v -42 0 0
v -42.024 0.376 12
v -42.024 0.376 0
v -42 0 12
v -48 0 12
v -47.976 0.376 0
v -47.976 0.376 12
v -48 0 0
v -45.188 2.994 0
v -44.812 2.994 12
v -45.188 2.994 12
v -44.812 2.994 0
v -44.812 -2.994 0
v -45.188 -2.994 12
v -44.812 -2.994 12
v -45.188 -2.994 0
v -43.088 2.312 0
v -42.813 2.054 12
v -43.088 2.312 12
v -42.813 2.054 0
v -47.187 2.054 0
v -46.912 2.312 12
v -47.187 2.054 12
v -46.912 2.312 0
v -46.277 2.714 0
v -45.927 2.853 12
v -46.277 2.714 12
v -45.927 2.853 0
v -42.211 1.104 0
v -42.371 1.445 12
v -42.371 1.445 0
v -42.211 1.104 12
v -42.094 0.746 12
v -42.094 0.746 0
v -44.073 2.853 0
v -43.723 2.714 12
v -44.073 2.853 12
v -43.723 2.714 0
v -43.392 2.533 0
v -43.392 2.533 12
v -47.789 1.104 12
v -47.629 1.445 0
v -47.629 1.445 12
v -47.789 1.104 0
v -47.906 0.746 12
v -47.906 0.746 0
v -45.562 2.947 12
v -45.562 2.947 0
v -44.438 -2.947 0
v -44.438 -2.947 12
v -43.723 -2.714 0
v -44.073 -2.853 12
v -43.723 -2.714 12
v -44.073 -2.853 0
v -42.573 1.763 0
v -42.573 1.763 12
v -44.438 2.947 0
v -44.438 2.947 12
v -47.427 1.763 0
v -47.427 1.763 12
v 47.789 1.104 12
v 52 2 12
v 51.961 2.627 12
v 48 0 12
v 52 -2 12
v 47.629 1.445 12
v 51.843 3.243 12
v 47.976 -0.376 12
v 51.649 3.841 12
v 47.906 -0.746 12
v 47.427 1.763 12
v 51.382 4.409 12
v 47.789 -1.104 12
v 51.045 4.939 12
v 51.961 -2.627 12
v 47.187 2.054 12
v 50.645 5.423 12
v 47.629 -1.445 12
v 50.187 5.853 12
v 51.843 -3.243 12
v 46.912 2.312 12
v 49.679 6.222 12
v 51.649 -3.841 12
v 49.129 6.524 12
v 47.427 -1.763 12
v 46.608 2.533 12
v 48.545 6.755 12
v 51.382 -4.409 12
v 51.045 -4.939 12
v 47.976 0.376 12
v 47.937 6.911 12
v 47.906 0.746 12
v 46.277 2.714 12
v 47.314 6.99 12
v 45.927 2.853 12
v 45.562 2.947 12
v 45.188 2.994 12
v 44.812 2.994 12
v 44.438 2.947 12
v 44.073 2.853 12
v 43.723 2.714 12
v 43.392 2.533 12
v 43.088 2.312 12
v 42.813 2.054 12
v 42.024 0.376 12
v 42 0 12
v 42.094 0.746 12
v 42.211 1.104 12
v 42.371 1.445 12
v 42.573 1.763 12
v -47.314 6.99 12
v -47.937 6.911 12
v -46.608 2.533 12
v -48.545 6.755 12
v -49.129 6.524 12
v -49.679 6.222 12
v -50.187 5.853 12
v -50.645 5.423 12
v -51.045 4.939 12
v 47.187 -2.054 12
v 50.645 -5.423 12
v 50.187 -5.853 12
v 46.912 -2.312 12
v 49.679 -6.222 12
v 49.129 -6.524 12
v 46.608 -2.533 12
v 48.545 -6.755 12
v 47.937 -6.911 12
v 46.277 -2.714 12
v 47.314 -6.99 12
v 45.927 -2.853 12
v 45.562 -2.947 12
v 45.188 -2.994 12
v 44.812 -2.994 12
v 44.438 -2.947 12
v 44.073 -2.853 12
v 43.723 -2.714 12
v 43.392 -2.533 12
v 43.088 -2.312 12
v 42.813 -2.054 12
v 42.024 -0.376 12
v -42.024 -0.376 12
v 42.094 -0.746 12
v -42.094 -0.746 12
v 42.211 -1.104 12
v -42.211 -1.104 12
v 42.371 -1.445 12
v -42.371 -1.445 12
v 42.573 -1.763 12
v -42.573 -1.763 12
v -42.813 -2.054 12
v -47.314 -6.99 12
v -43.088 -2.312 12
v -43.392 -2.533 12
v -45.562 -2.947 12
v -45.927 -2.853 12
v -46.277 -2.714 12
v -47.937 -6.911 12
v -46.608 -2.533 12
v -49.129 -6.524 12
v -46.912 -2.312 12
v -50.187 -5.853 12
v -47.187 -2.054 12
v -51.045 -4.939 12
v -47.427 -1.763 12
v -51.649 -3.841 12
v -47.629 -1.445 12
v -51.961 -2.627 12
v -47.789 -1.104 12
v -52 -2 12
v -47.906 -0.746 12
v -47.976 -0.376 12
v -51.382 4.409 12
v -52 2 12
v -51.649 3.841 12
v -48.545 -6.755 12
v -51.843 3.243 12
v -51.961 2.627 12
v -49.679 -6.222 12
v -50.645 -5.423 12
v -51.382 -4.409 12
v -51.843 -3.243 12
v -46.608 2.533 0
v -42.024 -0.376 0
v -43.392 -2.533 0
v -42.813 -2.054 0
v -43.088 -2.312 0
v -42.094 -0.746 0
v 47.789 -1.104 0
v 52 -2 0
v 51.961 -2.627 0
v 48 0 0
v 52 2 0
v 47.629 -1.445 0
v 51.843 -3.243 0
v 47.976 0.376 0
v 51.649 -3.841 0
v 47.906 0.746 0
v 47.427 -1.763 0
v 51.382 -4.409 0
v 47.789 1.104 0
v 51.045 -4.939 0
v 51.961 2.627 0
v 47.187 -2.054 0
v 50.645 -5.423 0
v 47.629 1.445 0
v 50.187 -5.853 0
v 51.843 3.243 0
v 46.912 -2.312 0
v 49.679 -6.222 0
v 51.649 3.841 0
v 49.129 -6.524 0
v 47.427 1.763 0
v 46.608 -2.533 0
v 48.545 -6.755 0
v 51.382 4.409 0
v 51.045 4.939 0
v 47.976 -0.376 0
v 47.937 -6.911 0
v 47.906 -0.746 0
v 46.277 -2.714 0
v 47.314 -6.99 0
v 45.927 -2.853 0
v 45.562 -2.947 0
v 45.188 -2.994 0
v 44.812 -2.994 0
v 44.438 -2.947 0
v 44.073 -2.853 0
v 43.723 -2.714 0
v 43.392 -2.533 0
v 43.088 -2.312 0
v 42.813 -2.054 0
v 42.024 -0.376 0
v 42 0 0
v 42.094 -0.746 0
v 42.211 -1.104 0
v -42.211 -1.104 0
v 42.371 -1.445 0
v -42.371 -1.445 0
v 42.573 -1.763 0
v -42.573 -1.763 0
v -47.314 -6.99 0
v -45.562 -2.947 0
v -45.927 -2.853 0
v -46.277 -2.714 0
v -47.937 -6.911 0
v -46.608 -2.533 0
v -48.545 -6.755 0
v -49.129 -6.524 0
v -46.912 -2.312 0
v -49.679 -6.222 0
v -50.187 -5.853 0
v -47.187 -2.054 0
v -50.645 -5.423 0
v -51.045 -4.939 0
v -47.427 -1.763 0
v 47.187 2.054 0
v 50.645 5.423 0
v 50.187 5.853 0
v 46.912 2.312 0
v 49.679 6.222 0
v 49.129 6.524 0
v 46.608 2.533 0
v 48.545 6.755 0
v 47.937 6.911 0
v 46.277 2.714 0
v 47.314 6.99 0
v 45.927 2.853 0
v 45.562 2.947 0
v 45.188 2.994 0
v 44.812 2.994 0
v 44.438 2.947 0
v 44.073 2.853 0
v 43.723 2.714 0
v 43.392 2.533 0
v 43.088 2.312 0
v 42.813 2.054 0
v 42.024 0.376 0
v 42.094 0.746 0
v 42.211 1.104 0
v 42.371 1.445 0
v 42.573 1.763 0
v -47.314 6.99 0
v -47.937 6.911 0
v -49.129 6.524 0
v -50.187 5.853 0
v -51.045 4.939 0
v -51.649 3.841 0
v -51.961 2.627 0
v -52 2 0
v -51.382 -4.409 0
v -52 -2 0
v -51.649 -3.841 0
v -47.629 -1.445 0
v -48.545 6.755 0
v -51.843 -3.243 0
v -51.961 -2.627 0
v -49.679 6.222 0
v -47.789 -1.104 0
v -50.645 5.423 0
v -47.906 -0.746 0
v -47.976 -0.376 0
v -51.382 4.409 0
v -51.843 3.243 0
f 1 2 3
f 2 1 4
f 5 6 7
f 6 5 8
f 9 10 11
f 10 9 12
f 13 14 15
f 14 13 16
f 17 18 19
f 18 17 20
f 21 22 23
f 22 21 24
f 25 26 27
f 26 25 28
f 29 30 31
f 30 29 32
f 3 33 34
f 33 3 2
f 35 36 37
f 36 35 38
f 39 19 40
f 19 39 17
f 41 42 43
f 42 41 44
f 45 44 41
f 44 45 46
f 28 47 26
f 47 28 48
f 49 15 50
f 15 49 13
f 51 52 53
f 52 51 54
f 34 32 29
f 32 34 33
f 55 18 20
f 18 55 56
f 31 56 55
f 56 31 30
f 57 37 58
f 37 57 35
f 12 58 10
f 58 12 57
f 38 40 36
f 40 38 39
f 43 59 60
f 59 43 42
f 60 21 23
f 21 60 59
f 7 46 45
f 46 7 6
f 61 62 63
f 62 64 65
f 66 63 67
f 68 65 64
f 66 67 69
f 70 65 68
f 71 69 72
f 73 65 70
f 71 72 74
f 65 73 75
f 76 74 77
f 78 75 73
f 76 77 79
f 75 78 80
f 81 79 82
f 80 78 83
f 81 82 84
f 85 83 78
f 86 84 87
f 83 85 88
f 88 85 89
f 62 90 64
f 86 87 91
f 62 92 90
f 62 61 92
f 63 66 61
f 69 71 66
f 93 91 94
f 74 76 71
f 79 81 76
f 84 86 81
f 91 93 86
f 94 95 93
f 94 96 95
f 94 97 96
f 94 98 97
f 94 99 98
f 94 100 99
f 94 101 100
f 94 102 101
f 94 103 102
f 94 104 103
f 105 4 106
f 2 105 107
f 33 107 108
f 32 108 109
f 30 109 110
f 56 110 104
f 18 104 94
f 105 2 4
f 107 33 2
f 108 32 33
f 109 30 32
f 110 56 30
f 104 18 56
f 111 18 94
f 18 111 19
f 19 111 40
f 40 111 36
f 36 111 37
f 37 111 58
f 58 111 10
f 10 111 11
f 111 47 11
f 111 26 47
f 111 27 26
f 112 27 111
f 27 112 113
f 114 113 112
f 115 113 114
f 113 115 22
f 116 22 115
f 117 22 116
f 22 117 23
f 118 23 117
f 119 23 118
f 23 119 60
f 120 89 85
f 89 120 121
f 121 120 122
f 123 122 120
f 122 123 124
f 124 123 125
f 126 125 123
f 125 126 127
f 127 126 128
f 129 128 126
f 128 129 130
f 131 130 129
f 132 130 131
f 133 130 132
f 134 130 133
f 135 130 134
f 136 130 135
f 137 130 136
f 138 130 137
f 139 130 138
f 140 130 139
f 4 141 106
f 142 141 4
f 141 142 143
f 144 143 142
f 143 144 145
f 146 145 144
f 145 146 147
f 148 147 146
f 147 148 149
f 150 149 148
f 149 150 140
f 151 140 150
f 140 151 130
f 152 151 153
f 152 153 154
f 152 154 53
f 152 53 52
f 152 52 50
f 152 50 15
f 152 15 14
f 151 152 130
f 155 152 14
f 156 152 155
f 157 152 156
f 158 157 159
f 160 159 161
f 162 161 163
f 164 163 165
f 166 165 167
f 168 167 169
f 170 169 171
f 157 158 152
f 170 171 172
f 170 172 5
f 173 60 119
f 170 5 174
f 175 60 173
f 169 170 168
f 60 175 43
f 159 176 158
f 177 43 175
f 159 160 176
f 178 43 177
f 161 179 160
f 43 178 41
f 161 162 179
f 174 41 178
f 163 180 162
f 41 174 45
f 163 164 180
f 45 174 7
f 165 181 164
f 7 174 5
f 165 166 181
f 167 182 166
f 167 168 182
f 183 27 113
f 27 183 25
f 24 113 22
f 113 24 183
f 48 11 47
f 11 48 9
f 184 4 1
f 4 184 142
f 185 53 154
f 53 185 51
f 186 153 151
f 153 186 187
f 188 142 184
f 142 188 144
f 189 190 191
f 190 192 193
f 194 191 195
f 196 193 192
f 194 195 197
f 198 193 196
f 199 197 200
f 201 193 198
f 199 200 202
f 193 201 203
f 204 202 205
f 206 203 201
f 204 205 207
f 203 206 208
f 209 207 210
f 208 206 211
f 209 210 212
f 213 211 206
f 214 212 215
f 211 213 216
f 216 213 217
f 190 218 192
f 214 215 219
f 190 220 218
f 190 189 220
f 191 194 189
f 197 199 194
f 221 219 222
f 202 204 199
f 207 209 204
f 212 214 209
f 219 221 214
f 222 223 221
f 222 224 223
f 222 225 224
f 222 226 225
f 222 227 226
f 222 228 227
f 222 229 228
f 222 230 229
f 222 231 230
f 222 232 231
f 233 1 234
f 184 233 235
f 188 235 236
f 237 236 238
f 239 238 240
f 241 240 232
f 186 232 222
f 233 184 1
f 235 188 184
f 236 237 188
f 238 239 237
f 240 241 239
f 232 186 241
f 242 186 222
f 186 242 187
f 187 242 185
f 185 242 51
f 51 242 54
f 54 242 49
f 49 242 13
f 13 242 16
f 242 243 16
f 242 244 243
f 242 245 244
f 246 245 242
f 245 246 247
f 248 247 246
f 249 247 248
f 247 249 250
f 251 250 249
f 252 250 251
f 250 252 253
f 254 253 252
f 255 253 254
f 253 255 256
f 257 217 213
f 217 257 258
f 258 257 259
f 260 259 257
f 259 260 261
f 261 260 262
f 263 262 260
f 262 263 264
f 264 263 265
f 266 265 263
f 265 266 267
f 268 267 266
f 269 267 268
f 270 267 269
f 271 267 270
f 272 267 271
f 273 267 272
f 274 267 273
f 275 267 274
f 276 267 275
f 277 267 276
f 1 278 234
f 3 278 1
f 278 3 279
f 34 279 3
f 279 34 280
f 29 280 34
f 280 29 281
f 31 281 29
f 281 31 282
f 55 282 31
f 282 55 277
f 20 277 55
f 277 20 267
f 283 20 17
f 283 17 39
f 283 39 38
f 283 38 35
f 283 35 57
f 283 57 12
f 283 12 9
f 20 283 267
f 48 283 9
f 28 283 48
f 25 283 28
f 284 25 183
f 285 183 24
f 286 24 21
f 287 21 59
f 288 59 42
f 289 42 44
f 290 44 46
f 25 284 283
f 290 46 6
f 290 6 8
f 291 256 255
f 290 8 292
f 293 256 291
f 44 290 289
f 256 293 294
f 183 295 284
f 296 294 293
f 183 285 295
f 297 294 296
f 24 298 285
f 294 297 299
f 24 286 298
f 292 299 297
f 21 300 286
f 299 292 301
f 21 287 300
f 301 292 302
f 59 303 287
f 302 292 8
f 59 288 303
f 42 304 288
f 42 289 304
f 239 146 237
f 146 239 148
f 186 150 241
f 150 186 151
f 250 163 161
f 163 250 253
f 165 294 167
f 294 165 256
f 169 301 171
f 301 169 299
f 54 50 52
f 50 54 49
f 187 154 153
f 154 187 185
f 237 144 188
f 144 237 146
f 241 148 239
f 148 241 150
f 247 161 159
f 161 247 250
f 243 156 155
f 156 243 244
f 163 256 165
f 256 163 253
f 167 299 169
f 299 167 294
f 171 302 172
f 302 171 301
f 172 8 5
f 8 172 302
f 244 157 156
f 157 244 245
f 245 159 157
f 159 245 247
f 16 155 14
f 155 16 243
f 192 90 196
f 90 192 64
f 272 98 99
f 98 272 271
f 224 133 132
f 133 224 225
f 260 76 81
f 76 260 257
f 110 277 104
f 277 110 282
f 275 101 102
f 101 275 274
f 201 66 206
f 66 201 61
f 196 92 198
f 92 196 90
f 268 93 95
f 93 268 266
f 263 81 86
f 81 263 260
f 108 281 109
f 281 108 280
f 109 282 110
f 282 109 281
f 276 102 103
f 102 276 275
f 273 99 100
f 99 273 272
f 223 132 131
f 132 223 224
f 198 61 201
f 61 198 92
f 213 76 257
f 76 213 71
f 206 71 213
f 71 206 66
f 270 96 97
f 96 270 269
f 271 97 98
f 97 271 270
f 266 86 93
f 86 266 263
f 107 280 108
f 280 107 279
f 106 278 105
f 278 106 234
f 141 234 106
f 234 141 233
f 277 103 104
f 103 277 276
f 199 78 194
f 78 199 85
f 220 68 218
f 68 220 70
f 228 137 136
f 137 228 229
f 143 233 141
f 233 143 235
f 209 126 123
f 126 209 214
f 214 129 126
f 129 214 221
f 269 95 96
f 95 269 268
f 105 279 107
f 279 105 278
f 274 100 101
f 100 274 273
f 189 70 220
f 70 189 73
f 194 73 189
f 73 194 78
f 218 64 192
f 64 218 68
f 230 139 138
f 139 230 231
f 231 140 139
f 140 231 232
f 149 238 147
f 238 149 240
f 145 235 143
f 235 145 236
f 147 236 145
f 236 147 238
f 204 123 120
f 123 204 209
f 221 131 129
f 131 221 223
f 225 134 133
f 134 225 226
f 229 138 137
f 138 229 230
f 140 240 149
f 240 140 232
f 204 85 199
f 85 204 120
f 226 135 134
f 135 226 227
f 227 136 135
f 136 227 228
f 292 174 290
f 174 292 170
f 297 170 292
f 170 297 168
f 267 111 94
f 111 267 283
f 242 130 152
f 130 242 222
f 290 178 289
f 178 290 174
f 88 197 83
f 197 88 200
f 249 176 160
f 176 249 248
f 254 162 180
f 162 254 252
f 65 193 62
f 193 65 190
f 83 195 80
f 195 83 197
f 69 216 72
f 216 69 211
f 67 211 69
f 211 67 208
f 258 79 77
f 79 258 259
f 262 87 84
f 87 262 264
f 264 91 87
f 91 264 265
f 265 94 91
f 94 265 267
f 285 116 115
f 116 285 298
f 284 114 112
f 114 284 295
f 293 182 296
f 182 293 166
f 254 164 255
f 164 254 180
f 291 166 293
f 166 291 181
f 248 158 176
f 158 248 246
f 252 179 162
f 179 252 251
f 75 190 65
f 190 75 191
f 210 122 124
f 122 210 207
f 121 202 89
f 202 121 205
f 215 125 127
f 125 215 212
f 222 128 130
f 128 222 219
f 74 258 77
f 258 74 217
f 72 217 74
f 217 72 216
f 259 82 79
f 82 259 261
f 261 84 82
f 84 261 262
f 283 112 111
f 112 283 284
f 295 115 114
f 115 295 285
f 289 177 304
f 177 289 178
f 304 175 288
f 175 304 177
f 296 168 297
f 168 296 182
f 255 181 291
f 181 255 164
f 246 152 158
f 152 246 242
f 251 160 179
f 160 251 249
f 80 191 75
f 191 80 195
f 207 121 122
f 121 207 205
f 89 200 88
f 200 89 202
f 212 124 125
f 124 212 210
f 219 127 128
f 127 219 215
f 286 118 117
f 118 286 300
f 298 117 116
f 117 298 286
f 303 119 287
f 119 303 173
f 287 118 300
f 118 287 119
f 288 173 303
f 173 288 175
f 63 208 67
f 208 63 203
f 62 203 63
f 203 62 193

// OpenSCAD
$fn = 50;


difference() {
	union() {
		hull() {
			translate(v = [-47.0000000000, 2.0000000000, 0]) {
				cylinder(h = 12, r = 5);
			}
			translate(v = [47.0000000000, 2.0000000000, 0]) {
				cylinder(h = 12, r = 5);
			}
			translate(v = [-47.0000000000, -2.0000000000, 0]) {
				cylinder(h = 12, r = 5);
			}
			translate(v = [47.0000000000, -2.0000000000, 0]) {
				cylinder(h = 12, r = 5);
			}
		}
	}
	union() {
		translate(v = [-45.0000000000, 0.0000000000, 0]) {
			cylinder(h = 12, r = 3.0000000000);
		}
		translate(v = [45.0000000000, 0.0000000000, 0]) {
			cylinder(h = 12, r = 3.0000000000);
		}
		translate(v = [-45.0000000000, 0.0000000000, 0]) {
			cylinder(h = 12, r = 1.5000000000);
		}
		translate(v = [45.0000000000, 0.0000000000, 0]) {
			cylinder(h = 12, r = 1.5000000000);
		}
		translate(v = [-45.0000000000, 0.0000000000, 0]) {
			cylinder(h = 12, r = 1.5000000000);
		}
		translate(v = [45.0000000000, 0.0000000000, 0]) {
			cylinder(h = 12, r = 1.5000000000);
		}
		translate(v = [-45.0000000000, 0.0000000000, 0]) {
			cylinder(h = 12, r = 1.5000000000);
		}
		translate(v = [45.0000000000, 0.0000000000, 0]) {
			cylinder(h = 12, r = 1.5000000000);
		}
	}
}
